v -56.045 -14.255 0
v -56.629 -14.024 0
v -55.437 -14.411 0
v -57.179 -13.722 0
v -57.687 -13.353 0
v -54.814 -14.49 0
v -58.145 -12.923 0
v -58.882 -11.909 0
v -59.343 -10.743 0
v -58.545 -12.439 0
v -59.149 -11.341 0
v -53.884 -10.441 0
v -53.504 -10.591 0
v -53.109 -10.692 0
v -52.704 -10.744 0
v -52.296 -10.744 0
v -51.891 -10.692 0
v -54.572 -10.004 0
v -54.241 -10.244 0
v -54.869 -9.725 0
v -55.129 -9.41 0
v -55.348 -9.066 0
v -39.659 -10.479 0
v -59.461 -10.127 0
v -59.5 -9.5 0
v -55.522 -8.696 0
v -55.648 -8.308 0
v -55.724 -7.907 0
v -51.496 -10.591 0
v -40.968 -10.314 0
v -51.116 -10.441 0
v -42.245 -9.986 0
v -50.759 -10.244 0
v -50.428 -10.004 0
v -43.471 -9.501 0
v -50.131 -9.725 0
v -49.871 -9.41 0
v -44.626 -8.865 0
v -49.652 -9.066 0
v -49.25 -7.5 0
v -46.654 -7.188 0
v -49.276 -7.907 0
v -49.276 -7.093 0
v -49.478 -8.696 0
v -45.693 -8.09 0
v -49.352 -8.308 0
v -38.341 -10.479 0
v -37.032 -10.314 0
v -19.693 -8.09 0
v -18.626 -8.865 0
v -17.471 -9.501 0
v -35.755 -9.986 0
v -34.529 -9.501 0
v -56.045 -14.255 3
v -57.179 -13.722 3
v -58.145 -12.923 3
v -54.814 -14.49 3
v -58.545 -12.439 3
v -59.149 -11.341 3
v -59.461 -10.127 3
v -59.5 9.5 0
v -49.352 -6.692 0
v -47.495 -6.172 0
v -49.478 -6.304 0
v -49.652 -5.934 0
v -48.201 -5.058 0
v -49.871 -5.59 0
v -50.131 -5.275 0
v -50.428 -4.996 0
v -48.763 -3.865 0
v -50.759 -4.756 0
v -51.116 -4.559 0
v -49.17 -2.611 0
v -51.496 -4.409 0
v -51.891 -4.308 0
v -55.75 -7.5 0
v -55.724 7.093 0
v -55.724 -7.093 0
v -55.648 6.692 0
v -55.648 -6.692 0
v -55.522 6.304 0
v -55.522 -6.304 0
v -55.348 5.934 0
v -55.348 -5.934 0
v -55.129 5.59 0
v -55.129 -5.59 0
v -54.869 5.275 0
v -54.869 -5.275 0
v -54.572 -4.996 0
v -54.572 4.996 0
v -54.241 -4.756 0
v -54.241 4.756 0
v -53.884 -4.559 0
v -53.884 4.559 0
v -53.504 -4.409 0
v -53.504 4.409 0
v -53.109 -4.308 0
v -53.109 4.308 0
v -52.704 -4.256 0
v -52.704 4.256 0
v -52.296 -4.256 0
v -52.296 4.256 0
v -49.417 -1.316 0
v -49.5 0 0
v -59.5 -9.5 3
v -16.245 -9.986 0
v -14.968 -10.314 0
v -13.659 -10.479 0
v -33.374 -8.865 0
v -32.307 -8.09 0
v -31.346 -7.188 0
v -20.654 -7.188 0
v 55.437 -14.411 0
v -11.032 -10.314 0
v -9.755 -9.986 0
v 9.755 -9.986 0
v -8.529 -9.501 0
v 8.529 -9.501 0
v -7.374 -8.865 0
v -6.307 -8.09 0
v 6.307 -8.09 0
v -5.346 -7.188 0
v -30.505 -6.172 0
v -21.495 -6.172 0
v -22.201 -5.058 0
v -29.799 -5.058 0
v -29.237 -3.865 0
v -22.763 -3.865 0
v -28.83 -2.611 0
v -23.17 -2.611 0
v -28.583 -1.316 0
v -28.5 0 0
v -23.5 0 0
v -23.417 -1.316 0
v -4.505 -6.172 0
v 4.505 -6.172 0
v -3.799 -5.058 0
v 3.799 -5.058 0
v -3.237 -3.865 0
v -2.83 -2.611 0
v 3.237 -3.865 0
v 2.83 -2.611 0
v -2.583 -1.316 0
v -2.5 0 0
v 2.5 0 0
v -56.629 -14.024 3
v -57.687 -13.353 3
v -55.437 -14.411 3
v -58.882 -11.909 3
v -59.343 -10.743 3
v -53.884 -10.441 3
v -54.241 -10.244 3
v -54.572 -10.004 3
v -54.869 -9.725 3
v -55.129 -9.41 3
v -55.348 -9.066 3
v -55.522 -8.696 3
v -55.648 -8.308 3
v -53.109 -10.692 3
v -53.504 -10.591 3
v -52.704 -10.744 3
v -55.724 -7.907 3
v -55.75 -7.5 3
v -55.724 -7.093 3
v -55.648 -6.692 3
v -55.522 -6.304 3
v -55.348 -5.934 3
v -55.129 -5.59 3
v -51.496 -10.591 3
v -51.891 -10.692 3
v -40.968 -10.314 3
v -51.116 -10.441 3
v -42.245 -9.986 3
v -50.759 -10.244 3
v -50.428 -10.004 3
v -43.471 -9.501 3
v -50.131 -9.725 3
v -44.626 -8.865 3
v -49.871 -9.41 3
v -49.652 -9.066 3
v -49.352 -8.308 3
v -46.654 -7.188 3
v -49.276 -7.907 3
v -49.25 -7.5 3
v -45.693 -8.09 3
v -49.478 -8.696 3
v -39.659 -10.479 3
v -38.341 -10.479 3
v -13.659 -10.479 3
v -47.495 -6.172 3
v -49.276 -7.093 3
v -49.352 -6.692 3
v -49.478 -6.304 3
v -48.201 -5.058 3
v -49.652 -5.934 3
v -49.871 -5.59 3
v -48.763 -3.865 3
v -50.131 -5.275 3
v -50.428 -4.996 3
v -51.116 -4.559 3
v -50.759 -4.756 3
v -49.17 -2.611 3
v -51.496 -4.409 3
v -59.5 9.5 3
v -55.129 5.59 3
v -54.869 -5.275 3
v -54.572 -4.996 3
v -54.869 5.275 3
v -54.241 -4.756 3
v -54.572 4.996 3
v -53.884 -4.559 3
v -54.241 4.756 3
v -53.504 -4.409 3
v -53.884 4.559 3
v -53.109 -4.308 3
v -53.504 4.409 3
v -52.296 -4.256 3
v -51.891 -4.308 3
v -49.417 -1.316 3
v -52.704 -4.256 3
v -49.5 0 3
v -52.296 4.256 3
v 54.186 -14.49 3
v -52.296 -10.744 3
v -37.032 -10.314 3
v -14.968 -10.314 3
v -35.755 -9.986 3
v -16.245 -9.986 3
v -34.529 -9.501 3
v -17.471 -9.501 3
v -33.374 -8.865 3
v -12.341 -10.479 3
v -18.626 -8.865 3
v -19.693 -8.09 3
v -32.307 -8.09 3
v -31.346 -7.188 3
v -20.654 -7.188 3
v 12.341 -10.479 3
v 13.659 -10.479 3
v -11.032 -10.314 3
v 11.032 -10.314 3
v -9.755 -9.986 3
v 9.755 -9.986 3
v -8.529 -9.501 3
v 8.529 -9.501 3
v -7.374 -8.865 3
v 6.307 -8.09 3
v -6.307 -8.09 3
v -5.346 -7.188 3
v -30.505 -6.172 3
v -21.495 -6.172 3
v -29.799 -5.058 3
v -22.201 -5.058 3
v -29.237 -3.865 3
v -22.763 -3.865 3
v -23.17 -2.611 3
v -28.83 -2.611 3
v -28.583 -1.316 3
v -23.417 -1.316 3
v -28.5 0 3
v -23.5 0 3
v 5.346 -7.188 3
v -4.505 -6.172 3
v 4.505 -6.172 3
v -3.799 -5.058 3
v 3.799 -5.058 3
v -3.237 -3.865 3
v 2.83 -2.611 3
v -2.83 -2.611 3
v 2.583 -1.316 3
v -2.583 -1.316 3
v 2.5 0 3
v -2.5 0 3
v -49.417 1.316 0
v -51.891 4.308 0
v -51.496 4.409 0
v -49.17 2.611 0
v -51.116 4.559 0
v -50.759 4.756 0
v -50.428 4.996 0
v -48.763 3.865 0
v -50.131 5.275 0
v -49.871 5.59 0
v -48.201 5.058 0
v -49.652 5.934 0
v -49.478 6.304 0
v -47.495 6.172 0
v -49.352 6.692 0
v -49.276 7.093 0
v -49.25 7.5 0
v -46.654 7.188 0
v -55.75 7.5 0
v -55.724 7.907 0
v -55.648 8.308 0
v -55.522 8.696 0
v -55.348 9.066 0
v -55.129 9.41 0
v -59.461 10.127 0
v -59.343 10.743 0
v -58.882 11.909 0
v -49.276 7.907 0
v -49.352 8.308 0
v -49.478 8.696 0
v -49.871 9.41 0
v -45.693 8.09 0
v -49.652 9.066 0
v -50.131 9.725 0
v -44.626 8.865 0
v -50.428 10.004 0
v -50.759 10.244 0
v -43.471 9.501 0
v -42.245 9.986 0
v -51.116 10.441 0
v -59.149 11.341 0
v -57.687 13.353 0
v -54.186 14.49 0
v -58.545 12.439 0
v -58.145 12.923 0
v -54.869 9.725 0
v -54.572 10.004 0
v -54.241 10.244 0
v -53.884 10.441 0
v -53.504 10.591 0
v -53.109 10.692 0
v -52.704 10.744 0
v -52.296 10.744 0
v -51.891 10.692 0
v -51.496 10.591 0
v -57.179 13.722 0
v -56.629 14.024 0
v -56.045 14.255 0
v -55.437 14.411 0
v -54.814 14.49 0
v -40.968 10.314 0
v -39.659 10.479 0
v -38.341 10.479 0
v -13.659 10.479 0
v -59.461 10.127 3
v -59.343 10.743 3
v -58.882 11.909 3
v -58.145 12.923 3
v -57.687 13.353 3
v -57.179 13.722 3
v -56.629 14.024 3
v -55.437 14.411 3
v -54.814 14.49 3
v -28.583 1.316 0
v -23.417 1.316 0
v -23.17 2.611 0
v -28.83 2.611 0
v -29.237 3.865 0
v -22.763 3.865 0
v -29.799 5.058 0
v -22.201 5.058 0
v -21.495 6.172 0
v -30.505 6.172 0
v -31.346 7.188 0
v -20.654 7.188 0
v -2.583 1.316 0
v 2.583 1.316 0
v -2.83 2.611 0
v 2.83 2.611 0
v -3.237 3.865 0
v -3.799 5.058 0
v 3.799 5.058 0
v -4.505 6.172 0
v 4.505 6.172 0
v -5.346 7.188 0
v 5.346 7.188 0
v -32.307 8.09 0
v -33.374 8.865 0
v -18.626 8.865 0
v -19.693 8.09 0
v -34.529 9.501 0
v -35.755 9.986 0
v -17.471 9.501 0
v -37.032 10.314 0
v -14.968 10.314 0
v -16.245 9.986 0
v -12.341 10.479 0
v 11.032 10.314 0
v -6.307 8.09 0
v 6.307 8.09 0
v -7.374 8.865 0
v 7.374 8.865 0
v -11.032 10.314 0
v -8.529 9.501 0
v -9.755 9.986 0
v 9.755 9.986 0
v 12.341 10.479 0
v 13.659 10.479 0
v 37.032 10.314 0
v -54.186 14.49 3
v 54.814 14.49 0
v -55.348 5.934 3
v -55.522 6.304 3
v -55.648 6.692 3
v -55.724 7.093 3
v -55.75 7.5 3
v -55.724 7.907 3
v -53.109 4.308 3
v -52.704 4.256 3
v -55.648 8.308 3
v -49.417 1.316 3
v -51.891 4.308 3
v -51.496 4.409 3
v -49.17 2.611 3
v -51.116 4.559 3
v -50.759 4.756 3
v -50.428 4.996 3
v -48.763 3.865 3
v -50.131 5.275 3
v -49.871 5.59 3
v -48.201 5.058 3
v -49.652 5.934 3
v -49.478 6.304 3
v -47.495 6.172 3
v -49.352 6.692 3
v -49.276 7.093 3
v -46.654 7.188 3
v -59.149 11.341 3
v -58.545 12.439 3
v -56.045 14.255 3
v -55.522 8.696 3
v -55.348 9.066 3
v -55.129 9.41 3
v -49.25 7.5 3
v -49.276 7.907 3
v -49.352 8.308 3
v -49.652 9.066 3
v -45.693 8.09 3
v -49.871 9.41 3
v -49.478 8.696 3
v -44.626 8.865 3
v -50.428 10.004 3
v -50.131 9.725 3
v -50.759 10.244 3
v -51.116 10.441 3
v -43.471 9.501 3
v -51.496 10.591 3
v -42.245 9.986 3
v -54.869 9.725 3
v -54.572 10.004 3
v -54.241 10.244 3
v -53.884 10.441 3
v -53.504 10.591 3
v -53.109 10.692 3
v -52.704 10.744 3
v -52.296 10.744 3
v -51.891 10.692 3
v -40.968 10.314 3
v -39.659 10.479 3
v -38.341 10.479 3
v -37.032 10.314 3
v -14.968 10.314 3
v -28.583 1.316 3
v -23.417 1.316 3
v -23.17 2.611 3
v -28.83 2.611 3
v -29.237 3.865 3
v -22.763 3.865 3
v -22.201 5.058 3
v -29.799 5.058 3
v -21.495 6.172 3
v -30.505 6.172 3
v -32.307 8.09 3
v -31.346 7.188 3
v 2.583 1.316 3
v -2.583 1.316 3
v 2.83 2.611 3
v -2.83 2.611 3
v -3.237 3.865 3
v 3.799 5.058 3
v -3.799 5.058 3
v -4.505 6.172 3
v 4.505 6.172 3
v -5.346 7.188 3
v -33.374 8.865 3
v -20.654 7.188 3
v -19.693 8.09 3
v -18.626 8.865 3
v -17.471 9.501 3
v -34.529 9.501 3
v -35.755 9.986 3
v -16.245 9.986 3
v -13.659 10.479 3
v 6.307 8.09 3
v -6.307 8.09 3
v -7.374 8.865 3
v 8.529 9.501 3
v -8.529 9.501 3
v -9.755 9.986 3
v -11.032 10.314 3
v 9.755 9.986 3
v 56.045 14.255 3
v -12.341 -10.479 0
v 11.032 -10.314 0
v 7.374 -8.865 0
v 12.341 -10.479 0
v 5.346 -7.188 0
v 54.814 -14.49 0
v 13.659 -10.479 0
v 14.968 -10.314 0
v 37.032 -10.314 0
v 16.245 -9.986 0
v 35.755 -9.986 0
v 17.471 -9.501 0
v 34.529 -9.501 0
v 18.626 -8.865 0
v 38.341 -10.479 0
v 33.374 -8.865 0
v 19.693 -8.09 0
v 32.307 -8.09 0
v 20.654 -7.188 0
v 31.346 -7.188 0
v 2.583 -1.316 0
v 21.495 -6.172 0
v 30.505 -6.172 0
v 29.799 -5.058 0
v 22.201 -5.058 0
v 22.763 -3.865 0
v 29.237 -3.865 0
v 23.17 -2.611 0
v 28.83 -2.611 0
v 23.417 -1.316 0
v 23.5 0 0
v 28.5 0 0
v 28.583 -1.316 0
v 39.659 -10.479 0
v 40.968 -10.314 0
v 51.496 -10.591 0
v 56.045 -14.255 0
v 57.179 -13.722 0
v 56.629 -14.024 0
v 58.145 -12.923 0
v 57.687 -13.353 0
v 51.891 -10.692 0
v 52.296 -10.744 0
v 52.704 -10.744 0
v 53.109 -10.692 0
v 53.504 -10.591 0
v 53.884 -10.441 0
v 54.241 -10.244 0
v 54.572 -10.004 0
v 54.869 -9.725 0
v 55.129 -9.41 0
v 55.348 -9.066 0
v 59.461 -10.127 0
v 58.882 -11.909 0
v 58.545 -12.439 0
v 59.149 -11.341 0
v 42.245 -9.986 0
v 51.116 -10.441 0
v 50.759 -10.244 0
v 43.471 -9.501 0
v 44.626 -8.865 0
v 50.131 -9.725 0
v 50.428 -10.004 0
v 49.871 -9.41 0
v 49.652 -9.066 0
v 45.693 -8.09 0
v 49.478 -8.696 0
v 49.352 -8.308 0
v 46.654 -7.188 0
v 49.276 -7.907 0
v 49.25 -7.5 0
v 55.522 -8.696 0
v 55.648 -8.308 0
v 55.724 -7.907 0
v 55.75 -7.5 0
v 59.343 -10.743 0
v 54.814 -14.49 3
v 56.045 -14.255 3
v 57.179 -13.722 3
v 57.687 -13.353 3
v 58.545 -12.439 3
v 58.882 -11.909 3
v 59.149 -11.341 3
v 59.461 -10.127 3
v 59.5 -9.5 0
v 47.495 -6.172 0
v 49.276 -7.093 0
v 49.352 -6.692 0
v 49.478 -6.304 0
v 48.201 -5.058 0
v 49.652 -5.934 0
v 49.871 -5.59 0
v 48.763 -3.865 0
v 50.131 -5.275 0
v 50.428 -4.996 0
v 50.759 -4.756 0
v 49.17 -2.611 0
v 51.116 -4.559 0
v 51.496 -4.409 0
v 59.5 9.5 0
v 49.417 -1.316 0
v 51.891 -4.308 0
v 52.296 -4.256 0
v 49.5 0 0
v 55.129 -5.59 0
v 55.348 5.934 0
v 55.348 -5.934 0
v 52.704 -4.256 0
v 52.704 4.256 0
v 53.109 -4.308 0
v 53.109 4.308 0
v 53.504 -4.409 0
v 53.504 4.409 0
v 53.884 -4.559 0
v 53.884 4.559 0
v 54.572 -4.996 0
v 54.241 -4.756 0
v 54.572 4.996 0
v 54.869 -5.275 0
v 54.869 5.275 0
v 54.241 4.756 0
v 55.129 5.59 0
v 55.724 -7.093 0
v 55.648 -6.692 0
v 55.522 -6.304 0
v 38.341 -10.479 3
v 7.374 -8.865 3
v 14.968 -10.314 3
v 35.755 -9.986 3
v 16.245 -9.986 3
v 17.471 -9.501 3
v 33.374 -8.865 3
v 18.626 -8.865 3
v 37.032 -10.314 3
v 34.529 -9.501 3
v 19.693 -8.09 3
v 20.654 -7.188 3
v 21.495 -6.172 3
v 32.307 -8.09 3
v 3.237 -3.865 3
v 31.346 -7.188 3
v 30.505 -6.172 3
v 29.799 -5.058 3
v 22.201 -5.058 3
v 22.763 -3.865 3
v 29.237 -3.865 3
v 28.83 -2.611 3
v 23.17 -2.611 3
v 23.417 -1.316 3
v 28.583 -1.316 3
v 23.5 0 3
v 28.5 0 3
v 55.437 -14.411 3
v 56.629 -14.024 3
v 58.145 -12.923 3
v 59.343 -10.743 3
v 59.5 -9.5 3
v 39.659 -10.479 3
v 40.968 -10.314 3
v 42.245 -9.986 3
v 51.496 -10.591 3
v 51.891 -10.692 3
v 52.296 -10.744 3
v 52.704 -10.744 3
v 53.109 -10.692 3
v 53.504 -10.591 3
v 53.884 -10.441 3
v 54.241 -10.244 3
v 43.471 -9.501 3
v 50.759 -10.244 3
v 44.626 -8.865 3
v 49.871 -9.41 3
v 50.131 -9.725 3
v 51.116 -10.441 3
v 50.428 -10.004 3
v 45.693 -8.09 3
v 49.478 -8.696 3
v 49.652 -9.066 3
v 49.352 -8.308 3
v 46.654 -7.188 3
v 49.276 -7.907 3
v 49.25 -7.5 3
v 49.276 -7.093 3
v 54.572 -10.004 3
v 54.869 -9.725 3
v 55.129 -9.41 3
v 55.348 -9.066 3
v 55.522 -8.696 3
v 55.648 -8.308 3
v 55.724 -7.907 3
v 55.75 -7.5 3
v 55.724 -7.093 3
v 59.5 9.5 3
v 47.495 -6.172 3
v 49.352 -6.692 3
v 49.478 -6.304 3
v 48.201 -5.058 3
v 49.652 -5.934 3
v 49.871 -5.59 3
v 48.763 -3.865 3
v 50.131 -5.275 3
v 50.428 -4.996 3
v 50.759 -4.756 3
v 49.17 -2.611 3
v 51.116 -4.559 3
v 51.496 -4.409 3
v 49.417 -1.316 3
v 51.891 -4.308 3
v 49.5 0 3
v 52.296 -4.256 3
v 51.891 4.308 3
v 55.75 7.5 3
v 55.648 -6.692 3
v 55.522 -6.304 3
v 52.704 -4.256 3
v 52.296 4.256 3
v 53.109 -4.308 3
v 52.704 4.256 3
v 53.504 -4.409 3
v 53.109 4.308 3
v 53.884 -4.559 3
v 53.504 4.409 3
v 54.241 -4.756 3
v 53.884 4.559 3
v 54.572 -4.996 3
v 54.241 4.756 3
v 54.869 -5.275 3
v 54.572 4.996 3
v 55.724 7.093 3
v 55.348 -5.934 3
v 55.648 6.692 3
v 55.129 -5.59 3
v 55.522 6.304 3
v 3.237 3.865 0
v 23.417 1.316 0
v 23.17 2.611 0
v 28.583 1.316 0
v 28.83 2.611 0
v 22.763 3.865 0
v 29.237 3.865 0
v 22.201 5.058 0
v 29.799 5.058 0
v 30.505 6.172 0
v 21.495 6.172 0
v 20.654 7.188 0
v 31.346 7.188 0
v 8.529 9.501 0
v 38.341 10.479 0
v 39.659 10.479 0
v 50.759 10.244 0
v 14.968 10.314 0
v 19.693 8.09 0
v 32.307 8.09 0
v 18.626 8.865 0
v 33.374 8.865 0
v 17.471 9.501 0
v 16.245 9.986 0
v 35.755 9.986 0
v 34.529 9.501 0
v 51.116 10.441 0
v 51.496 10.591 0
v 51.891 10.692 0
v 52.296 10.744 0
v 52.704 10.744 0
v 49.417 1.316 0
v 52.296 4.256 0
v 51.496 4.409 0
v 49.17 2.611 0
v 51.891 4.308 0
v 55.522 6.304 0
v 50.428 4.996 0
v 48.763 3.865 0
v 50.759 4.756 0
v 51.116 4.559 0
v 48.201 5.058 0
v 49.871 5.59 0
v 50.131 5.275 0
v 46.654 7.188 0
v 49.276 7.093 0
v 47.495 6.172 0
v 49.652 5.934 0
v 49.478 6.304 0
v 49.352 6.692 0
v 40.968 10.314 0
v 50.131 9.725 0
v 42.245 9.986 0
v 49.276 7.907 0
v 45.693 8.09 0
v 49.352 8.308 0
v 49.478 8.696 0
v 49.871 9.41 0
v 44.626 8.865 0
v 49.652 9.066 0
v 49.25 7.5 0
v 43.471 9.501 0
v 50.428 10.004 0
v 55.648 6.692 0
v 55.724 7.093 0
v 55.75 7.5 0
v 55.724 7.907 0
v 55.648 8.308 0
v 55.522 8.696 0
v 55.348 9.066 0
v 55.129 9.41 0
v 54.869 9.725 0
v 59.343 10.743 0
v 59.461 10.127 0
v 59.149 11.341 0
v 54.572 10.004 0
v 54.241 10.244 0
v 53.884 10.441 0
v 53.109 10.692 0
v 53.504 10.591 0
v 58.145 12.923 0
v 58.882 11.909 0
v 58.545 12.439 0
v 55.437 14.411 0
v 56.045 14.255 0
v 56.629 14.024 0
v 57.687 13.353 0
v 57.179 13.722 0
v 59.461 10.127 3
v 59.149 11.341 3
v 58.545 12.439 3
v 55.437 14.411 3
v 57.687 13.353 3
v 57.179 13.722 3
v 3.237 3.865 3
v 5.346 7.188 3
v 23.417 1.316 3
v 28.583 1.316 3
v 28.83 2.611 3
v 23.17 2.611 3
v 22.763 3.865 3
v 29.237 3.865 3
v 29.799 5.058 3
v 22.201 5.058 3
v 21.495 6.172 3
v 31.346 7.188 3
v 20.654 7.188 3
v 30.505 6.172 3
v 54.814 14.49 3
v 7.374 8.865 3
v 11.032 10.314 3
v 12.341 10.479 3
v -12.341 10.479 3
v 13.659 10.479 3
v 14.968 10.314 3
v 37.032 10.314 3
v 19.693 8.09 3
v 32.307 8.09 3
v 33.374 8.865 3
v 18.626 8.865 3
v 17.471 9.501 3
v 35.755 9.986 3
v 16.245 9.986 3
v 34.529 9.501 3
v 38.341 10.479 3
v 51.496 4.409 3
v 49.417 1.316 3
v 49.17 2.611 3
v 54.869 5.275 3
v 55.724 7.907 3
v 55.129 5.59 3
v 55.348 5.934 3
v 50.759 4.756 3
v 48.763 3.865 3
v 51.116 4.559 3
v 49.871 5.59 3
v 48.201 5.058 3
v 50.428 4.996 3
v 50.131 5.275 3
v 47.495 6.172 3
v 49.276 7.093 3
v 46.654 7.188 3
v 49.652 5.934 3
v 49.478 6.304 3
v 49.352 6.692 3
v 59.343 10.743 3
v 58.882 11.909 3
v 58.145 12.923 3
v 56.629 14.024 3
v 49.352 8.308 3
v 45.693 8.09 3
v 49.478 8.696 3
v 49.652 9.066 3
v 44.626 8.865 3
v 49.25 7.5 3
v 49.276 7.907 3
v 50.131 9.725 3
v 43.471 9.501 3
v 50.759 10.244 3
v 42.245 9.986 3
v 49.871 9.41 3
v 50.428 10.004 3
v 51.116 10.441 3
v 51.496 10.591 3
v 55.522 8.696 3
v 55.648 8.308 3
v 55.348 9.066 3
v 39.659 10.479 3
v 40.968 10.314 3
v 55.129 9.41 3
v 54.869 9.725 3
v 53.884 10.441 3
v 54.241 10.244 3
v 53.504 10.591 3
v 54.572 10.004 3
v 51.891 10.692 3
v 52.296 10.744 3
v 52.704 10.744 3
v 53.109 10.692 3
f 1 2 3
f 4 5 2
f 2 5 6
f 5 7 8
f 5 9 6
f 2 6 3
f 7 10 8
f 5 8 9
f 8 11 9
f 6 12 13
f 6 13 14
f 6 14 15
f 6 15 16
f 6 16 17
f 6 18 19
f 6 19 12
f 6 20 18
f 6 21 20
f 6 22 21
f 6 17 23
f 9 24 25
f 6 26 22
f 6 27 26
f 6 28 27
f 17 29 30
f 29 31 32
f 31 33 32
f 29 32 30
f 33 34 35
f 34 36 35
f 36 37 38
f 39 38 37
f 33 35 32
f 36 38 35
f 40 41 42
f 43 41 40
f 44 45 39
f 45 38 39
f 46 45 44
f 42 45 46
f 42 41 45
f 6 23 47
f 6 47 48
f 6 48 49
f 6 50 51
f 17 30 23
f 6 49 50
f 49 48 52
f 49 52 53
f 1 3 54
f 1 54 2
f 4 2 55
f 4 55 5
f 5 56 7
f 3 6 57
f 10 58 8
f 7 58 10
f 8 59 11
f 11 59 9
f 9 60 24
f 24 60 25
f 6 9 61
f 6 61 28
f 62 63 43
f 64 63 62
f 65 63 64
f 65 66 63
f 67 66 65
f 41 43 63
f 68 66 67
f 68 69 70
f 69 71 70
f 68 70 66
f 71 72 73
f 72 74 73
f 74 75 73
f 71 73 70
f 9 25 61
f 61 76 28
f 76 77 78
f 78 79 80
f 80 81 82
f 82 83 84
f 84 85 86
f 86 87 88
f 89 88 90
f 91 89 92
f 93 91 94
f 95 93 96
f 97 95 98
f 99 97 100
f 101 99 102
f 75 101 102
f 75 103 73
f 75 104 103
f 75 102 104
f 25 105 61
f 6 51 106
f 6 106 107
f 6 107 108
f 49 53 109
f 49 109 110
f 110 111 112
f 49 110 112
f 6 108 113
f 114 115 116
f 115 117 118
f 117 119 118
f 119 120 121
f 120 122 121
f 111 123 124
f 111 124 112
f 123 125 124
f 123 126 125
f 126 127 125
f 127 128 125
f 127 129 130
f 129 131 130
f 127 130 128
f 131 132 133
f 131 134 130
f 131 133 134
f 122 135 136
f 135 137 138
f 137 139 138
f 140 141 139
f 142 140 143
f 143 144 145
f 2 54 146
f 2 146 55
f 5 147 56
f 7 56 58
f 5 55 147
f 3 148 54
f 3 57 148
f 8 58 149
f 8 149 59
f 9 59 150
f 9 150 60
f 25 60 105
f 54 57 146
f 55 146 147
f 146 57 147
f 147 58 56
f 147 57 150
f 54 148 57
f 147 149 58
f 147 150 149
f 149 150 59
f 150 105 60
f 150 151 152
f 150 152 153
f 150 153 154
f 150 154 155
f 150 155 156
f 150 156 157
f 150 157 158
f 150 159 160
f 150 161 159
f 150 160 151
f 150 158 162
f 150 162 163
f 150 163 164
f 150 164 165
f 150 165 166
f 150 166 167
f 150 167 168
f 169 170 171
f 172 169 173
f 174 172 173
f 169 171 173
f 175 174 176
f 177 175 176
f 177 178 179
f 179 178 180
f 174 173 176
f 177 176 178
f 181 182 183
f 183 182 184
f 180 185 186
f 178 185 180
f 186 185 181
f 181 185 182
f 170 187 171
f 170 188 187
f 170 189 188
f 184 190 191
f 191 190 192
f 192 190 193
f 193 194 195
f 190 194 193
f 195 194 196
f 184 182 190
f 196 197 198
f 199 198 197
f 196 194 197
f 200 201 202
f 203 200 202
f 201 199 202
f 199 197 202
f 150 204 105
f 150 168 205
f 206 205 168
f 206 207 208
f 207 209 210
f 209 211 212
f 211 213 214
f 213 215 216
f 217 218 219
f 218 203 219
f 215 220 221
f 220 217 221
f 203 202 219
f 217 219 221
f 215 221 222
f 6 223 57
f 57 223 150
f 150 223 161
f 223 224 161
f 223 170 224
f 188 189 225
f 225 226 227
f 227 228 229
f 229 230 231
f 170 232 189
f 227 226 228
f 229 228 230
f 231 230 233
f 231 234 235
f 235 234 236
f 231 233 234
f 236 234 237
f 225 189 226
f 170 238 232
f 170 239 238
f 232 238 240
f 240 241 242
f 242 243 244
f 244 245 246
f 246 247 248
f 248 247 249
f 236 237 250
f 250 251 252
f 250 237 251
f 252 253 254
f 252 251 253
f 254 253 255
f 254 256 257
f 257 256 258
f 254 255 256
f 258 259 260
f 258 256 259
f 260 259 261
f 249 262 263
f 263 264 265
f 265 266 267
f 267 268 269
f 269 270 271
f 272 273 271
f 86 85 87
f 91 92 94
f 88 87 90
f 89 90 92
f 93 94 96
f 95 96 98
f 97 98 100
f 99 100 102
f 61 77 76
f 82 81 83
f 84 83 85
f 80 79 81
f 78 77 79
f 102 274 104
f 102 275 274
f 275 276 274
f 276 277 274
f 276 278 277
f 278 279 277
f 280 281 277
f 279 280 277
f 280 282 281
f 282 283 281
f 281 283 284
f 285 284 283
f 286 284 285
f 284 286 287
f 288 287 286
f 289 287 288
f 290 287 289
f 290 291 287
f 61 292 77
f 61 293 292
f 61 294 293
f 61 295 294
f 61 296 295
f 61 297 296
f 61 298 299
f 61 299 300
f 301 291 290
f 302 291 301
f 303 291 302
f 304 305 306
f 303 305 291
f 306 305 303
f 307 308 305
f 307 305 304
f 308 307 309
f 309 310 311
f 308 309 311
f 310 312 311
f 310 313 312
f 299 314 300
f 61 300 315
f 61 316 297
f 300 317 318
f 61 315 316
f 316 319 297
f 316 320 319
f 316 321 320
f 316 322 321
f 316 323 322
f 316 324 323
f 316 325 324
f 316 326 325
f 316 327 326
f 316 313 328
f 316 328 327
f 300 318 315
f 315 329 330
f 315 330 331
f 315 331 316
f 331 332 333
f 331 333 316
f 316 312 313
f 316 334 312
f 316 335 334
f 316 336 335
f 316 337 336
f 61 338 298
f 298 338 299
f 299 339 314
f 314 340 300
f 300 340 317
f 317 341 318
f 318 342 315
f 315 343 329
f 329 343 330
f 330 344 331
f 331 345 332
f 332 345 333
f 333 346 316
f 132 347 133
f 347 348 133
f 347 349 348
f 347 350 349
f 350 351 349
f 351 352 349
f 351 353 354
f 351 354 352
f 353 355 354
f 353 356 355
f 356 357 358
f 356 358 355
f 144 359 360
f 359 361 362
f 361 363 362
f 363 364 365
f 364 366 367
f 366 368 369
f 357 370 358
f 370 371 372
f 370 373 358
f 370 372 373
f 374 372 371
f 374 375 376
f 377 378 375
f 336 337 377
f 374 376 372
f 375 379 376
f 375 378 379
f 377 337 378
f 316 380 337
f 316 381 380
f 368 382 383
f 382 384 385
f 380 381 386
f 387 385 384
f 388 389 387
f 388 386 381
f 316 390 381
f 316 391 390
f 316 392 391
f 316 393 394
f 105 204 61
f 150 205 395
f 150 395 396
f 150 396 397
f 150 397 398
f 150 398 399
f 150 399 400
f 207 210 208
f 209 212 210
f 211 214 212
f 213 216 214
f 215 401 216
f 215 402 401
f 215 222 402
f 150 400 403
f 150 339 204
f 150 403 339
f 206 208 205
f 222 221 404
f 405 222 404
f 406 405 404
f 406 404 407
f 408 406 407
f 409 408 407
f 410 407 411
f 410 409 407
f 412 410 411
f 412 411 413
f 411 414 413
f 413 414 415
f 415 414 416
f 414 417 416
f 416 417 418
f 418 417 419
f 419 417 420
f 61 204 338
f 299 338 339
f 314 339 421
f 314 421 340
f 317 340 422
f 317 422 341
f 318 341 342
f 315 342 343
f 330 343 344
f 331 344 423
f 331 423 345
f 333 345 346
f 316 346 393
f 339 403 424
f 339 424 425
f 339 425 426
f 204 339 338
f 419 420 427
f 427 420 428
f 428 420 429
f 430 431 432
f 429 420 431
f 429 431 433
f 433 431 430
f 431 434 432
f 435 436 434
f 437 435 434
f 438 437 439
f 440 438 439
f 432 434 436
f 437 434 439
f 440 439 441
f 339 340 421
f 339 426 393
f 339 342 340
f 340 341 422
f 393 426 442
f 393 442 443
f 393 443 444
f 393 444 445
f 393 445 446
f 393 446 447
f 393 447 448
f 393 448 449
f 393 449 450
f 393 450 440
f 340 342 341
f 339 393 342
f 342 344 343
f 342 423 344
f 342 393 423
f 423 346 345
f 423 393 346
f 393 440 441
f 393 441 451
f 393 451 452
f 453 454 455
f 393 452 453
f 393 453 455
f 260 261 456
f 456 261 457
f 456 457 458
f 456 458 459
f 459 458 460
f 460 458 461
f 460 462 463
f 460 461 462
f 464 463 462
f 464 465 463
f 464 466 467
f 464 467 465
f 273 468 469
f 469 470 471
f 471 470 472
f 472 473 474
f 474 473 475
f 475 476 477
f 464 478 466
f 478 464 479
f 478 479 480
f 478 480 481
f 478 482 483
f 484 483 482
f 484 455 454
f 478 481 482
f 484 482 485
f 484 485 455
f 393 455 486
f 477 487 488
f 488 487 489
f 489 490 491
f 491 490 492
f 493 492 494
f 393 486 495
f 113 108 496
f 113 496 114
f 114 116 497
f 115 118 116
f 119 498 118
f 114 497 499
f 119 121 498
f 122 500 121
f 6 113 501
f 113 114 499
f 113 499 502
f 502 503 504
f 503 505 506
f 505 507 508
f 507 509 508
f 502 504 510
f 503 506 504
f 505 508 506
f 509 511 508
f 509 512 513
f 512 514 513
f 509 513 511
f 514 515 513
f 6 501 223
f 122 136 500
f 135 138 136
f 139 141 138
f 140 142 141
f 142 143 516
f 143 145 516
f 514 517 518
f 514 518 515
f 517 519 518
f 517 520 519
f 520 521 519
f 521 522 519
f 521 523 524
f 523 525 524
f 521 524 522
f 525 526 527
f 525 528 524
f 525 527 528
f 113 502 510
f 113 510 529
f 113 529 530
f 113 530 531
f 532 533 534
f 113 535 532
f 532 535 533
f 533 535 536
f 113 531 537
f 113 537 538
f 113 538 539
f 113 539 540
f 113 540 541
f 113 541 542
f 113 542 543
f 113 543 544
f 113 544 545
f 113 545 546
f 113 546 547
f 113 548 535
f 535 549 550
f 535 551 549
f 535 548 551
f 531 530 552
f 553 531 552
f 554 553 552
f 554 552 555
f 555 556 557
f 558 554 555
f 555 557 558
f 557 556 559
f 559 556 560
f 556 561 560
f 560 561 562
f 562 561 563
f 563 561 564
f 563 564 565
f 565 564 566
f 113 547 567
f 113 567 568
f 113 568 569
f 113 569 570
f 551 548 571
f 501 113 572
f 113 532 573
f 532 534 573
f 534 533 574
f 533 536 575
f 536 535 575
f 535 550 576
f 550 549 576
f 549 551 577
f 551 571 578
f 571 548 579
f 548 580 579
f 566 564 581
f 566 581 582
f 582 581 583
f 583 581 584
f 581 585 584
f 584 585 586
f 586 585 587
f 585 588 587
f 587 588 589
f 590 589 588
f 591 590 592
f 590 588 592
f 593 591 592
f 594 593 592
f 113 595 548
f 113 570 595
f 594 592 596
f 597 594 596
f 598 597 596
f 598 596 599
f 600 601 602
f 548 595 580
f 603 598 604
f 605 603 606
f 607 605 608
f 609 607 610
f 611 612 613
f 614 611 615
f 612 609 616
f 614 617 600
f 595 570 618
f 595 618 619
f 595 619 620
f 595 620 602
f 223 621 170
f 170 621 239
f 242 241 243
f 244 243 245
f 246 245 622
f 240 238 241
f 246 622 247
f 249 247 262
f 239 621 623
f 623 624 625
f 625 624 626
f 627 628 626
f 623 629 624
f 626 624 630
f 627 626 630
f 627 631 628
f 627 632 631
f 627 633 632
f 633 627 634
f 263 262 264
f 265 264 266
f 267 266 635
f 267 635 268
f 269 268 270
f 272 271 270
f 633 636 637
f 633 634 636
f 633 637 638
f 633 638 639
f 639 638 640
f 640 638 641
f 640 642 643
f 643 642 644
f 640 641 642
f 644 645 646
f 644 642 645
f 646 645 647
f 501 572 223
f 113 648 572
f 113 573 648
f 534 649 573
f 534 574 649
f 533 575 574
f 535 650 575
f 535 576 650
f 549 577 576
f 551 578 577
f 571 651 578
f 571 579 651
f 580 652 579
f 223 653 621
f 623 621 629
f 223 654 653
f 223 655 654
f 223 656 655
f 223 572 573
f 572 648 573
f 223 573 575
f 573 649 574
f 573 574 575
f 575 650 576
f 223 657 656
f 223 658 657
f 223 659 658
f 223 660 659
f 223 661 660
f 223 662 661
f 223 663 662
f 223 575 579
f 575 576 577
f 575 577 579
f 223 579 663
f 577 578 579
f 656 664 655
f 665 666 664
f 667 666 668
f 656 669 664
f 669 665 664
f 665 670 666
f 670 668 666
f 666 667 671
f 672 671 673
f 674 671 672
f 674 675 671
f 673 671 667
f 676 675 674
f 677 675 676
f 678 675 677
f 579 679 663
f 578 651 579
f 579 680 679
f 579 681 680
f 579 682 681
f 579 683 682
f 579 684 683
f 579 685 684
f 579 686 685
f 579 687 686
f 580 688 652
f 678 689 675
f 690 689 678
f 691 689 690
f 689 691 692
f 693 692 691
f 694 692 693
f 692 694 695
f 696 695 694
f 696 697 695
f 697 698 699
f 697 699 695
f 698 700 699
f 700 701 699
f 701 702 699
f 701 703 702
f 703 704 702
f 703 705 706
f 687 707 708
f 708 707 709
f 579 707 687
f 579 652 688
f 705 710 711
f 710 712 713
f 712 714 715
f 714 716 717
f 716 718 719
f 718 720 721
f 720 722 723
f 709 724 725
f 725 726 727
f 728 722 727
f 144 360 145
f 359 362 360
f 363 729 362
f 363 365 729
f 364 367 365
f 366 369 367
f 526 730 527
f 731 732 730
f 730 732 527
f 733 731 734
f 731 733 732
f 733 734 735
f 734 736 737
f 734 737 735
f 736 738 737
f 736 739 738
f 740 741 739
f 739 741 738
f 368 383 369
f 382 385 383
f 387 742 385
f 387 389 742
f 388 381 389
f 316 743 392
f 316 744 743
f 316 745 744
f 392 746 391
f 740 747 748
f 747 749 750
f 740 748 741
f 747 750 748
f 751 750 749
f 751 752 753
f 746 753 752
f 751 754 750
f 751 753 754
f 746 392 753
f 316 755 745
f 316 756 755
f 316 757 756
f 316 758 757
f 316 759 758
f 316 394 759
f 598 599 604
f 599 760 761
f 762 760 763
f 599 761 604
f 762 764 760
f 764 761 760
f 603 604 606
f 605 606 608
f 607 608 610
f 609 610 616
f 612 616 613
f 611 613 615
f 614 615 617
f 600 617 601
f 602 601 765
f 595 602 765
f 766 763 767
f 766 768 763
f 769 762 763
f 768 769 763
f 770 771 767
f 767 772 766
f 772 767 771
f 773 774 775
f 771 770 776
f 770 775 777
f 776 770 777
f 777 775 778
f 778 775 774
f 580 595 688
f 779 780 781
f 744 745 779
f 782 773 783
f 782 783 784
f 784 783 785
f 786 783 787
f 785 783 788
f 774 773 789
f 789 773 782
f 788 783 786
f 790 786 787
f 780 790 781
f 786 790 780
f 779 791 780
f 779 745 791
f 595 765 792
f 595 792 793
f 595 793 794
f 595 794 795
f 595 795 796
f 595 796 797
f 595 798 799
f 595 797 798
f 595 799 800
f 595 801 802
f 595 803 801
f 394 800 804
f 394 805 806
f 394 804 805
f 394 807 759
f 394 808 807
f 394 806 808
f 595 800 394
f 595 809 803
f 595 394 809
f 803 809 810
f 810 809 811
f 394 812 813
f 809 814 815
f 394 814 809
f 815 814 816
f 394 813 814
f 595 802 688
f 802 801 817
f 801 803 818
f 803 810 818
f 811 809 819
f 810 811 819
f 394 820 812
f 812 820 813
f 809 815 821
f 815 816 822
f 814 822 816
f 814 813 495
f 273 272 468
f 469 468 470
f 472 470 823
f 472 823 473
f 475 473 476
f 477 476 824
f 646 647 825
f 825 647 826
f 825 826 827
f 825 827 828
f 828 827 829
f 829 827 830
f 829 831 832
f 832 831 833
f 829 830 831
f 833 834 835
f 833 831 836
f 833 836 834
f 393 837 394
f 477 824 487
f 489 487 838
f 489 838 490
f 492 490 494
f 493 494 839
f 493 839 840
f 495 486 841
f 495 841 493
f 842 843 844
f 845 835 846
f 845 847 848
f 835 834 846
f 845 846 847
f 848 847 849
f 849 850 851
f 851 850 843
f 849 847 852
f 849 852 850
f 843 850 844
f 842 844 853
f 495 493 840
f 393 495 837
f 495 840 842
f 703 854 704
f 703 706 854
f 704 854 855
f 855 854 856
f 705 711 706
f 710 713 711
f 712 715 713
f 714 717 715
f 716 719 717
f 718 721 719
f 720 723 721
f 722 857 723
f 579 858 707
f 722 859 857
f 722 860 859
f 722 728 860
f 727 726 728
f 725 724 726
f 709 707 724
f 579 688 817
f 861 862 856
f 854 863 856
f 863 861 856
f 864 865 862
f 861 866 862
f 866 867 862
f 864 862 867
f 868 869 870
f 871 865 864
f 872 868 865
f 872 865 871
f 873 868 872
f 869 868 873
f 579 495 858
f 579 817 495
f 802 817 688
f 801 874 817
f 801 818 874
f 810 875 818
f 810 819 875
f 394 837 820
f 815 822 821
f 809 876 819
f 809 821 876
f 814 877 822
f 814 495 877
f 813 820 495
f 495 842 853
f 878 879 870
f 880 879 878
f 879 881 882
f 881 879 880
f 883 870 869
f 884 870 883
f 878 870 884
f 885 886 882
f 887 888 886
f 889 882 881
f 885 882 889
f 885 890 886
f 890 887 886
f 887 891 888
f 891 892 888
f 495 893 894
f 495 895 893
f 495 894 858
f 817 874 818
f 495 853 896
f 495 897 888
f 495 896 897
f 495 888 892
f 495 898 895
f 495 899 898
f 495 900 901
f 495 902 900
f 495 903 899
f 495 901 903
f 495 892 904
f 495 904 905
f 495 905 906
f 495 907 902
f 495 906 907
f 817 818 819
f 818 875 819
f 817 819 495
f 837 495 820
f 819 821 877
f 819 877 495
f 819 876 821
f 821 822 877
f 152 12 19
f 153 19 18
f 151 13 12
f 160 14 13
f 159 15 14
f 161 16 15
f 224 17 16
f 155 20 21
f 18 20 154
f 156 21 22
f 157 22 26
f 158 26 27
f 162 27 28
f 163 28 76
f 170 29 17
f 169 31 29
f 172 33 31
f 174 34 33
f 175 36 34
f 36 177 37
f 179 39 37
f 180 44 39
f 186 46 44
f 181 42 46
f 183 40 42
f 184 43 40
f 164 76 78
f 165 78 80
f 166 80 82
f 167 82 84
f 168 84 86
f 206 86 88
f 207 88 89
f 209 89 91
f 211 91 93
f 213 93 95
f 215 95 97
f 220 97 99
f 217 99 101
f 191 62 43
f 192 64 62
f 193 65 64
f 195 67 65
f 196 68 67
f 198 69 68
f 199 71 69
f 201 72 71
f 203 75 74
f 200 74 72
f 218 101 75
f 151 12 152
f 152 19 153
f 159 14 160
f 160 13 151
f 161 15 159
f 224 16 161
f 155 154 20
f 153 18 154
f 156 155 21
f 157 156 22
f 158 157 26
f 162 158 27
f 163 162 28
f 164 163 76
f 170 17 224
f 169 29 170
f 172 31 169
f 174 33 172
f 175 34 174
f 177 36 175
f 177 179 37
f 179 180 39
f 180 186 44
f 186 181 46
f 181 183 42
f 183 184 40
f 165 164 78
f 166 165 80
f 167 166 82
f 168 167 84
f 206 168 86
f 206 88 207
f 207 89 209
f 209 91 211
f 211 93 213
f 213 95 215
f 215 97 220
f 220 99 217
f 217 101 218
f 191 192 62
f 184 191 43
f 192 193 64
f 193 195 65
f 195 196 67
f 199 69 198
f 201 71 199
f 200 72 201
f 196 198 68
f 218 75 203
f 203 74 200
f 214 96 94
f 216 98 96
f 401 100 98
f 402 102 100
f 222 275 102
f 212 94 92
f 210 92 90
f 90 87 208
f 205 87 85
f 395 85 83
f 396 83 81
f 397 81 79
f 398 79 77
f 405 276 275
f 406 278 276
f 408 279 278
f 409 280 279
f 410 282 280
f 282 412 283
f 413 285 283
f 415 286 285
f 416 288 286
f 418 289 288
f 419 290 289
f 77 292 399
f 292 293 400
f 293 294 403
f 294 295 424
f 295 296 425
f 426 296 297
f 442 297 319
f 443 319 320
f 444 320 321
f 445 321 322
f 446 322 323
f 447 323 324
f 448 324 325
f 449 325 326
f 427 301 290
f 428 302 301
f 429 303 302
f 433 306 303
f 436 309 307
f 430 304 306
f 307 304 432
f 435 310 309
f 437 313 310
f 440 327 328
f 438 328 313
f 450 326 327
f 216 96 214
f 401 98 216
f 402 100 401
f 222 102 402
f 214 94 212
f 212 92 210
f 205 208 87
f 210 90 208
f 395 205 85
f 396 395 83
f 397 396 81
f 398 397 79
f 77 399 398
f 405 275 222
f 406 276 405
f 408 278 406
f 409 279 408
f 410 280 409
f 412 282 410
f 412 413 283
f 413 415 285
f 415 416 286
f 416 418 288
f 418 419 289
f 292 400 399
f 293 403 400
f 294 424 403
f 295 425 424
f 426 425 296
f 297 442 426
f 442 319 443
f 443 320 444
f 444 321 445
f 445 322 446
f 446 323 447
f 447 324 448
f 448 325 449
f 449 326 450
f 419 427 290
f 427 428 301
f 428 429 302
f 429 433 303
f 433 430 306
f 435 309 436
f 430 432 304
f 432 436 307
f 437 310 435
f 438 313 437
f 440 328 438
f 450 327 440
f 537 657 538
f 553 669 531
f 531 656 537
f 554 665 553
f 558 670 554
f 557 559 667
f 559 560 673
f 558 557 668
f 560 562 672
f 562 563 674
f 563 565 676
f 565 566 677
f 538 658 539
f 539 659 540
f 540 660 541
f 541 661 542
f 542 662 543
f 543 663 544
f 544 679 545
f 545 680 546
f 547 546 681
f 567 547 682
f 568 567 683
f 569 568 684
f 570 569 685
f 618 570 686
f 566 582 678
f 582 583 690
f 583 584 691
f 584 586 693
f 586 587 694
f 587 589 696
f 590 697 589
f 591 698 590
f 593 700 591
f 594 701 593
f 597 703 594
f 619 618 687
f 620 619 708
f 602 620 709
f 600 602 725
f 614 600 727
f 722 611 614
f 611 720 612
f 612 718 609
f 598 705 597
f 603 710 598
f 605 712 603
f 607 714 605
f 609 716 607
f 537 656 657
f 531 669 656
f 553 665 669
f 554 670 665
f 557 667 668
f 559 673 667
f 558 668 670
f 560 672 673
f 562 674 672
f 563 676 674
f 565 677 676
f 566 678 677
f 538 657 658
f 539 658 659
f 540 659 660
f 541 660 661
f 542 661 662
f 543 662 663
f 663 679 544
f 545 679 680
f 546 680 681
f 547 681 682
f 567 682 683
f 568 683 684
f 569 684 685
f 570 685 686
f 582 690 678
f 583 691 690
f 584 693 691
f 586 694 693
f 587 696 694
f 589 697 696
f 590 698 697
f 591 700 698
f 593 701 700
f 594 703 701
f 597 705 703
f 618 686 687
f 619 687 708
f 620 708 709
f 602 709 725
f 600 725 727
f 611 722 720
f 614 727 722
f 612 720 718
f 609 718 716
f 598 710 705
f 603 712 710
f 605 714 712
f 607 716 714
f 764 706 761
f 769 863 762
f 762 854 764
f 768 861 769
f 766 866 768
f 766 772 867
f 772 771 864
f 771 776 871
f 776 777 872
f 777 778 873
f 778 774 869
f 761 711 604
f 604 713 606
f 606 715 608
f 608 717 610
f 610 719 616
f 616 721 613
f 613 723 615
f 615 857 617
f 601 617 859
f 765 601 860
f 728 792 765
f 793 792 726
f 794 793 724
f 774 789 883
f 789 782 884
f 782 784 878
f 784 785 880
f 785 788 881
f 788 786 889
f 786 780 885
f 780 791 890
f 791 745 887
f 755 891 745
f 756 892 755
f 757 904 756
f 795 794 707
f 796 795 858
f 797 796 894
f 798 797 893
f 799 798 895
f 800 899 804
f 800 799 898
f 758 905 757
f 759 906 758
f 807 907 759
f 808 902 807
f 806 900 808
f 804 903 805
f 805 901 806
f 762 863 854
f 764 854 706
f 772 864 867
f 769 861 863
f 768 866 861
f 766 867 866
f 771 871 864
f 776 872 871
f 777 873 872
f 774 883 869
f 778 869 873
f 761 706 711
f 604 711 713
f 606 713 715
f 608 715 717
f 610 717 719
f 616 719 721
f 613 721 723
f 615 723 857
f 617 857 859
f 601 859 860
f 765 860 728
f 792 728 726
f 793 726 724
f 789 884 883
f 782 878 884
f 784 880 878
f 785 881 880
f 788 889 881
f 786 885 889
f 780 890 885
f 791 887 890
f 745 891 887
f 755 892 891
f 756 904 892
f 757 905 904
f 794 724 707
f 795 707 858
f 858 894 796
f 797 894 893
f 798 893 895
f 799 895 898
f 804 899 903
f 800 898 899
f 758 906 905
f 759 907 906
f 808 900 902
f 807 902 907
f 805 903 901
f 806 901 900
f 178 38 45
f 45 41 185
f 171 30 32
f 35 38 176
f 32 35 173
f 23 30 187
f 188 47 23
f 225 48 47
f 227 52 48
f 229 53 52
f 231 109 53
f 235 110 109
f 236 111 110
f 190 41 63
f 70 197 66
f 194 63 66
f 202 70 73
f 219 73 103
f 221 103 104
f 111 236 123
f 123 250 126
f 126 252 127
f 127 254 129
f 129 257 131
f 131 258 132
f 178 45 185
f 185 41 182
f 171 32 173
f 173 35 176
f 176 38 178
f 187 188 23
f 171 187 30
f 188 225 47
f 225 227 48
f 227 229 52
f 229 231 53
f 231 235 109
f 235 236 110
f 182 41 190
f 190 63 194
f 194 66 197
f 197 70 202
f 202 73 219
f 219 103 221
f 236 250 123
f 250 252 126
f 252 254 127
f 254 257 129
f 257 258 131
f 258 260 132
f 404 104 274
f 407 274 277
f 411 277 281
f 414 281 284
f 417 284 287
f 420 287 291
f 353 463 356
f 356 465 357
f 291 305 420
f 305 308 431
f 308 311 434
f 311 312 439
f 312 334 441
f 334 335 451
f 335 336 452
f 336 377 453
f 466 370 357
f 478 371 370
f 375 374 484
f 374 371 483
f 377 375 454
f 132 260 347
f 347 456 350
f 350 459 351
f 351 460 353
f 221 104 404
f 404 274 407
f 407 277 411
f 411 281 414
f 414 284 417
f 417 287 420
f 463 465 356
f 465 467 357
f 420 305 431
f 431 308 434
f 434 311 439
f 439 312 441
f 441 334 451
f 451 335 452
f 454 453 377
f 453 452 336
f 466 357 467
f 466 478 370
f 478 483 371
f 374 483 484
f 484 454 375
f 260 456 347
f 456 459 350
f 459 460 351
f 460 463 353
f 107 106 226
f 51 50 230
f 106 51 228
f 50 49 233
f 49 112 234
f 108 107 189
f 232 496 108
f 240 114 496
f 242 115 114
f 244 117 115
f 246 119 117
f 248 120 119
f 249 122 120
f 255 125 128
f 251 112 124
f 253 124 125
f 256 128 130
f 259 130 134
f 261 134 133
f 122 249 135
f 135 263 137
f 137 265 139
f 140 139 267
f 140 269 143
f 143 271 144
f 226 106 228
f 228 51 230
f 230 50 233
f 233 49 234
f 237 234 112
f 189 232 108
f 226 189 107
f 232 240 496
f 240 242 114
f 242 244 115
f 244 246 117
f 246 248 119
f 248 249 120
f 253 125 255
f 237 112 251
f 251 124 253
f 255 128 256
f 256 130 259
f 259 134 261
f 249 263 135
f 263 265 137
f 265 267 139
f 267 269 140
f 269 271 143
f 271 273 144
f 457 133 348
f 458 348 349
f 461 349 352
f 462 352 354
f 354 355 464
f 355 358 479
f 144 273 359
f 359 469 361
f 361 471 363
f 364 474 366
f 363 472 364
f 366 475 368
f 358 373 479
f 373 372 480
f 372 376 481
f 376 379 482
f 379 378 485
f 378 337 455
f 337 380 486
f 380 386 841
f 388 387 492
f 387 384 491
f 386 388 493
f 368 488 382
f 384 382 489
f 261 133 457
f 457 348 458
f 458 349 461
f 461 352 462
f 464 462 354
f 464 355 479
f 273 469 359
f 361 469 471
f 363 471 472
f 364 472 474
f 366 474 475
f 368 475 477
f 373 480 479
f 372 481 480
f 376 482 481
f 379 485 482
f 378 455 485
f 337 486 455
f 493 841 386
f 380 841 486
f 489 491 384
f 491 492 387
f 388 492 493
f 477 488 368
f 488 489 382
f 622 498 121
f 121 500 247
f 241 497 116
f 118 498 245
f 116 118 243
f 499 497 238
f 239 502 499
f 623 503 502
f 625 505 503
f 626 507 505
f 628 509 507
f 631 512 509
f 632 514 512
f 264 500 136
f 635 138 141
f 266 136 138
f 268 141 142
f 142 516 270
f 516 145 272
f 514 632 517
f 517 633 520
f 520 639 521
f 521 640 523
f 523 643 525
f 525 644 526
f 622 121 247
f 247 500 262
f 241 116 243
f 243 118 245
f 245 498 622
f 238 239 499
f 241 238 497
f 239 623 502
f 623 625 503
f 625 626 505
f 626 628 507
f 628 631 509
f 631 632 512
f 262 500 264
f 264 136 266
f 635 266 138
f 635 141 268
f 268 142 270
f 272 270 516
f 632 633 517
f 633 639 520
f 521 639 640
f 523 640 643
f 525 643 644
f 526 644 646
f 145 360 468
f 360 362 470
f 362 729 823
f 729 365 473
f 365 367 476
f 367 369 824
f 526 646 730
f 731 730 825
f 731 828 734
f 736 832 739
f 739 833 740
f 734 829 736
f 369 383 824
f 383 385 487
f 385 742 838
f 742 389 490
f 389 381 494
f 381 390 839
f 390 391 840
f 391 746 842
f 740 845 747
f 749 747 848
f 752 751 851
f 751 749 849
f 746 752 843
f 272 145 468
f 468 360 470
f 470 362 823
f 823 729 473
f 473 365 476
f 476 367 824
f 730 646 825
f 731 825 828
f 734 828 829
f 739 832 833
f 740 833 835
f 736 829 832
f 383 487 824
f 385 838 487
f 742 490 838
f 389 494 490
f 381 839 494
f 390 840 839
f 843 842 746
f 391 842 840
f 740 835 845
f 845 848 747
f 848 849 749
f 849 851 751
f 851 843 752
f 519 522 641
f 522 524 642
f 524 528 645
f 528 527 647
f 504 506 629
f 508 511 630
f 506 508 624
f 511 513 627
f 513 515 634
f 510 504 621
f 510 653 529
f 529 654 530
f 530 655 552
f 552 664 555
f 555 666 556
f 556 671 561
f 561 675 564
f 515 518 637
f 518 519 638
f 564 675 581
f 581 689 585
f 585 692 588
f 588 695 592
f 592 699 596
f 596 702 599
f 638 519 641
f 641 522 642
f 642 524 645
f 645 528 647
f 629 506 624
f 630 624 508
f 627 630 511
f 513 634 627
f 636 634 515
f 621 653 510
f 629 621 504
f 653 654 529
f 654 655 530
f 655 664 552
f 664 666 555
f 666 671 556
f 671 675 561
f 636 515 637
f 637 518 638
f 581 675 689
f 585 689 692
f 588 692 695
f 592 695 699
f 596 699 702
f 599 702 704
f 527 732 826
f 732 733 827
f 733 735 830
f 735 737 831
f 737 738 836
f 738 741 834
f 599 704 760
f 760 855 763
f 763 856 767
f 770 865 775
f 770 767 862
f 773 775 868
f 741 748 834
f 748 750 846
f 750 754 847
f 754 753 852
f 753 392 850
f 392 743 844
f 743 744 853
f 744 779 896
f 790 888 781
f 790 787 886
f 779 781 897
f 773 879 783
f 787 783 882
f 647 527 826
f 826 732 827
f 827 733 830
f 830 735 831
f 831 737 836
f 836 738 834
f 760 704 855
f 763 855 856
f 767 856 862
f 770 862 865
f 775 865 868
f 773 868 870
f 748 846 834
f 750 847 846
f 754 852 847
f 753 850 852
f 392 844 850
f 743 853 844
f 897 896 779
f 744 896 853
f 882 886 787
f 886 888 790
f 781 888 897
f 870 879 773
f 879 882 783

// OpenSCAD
$fn = 50;

difference() {
	union() {
		hull() {
			translate(v = [-54.5, 9.5, 0]) {
				cylinder(h = 3, r = 5);
			}
			translate(v = [54.5, 9.5, 0]) {
				cylinder(h = 3, r = 5);
			}
			translate(v = [-54.5, -9.5, 0]) {
				cylinder(h = 3, r = 5);
			}
			translate(v = [54.5, -9.5, 0]) {
				cylinder(h = 3, r = 5);
			}
		}
	}
	union() {
		translate(v = [-52.5, -7.5, -100.0]) {
			cylinder(h = 200, r = 3.25);
		}
		translate(v = [-52.5, 7.5, -100.0]) {
			cylinder(h = 200, r = 3.25);
		}
		translate(v = [52.5, -7.5, -100.0]) {
			cylinder(h = 200, r = 3.25);
		}
		translate(v = [52.5, 7.5, -100.0]) {
			cylinder(h = 200, r = 3.25);
		}
		translate(v = [-52.5, -7.5, -100.0]) {
			cylinder(h = 200, r = 1.8);
		}
		translate(v = [-52.5, 7.5, -100.0]) {
			cylinder(h = 200, r = 1.8);
		}
		translate(v = [52.5, -7.5, -100.0]) {
			cylinder(h = 200, r = 1.8);
		}
		translate(v = [52.5, 7.5, -100.0]) {
			cylinder(h = 200, r = 1.8);
		}
		translate(v = [-39.0, 0, 0.0]) {
			cylinder(h = 3, r = 10.5);
		}
		translate(v = [-13.0, 0, 0.0]) {
			cylinder(h = 3, r = 10.5);
		}
		translate(v = [13.0, 0, 0.0]) {
			cylinder(h = 3, r = 10.5);
		}
		translate(v = [39.0, 0, 0.0]) {
			cylinder(h = 3, r = 10.5);
		}
	}
}
